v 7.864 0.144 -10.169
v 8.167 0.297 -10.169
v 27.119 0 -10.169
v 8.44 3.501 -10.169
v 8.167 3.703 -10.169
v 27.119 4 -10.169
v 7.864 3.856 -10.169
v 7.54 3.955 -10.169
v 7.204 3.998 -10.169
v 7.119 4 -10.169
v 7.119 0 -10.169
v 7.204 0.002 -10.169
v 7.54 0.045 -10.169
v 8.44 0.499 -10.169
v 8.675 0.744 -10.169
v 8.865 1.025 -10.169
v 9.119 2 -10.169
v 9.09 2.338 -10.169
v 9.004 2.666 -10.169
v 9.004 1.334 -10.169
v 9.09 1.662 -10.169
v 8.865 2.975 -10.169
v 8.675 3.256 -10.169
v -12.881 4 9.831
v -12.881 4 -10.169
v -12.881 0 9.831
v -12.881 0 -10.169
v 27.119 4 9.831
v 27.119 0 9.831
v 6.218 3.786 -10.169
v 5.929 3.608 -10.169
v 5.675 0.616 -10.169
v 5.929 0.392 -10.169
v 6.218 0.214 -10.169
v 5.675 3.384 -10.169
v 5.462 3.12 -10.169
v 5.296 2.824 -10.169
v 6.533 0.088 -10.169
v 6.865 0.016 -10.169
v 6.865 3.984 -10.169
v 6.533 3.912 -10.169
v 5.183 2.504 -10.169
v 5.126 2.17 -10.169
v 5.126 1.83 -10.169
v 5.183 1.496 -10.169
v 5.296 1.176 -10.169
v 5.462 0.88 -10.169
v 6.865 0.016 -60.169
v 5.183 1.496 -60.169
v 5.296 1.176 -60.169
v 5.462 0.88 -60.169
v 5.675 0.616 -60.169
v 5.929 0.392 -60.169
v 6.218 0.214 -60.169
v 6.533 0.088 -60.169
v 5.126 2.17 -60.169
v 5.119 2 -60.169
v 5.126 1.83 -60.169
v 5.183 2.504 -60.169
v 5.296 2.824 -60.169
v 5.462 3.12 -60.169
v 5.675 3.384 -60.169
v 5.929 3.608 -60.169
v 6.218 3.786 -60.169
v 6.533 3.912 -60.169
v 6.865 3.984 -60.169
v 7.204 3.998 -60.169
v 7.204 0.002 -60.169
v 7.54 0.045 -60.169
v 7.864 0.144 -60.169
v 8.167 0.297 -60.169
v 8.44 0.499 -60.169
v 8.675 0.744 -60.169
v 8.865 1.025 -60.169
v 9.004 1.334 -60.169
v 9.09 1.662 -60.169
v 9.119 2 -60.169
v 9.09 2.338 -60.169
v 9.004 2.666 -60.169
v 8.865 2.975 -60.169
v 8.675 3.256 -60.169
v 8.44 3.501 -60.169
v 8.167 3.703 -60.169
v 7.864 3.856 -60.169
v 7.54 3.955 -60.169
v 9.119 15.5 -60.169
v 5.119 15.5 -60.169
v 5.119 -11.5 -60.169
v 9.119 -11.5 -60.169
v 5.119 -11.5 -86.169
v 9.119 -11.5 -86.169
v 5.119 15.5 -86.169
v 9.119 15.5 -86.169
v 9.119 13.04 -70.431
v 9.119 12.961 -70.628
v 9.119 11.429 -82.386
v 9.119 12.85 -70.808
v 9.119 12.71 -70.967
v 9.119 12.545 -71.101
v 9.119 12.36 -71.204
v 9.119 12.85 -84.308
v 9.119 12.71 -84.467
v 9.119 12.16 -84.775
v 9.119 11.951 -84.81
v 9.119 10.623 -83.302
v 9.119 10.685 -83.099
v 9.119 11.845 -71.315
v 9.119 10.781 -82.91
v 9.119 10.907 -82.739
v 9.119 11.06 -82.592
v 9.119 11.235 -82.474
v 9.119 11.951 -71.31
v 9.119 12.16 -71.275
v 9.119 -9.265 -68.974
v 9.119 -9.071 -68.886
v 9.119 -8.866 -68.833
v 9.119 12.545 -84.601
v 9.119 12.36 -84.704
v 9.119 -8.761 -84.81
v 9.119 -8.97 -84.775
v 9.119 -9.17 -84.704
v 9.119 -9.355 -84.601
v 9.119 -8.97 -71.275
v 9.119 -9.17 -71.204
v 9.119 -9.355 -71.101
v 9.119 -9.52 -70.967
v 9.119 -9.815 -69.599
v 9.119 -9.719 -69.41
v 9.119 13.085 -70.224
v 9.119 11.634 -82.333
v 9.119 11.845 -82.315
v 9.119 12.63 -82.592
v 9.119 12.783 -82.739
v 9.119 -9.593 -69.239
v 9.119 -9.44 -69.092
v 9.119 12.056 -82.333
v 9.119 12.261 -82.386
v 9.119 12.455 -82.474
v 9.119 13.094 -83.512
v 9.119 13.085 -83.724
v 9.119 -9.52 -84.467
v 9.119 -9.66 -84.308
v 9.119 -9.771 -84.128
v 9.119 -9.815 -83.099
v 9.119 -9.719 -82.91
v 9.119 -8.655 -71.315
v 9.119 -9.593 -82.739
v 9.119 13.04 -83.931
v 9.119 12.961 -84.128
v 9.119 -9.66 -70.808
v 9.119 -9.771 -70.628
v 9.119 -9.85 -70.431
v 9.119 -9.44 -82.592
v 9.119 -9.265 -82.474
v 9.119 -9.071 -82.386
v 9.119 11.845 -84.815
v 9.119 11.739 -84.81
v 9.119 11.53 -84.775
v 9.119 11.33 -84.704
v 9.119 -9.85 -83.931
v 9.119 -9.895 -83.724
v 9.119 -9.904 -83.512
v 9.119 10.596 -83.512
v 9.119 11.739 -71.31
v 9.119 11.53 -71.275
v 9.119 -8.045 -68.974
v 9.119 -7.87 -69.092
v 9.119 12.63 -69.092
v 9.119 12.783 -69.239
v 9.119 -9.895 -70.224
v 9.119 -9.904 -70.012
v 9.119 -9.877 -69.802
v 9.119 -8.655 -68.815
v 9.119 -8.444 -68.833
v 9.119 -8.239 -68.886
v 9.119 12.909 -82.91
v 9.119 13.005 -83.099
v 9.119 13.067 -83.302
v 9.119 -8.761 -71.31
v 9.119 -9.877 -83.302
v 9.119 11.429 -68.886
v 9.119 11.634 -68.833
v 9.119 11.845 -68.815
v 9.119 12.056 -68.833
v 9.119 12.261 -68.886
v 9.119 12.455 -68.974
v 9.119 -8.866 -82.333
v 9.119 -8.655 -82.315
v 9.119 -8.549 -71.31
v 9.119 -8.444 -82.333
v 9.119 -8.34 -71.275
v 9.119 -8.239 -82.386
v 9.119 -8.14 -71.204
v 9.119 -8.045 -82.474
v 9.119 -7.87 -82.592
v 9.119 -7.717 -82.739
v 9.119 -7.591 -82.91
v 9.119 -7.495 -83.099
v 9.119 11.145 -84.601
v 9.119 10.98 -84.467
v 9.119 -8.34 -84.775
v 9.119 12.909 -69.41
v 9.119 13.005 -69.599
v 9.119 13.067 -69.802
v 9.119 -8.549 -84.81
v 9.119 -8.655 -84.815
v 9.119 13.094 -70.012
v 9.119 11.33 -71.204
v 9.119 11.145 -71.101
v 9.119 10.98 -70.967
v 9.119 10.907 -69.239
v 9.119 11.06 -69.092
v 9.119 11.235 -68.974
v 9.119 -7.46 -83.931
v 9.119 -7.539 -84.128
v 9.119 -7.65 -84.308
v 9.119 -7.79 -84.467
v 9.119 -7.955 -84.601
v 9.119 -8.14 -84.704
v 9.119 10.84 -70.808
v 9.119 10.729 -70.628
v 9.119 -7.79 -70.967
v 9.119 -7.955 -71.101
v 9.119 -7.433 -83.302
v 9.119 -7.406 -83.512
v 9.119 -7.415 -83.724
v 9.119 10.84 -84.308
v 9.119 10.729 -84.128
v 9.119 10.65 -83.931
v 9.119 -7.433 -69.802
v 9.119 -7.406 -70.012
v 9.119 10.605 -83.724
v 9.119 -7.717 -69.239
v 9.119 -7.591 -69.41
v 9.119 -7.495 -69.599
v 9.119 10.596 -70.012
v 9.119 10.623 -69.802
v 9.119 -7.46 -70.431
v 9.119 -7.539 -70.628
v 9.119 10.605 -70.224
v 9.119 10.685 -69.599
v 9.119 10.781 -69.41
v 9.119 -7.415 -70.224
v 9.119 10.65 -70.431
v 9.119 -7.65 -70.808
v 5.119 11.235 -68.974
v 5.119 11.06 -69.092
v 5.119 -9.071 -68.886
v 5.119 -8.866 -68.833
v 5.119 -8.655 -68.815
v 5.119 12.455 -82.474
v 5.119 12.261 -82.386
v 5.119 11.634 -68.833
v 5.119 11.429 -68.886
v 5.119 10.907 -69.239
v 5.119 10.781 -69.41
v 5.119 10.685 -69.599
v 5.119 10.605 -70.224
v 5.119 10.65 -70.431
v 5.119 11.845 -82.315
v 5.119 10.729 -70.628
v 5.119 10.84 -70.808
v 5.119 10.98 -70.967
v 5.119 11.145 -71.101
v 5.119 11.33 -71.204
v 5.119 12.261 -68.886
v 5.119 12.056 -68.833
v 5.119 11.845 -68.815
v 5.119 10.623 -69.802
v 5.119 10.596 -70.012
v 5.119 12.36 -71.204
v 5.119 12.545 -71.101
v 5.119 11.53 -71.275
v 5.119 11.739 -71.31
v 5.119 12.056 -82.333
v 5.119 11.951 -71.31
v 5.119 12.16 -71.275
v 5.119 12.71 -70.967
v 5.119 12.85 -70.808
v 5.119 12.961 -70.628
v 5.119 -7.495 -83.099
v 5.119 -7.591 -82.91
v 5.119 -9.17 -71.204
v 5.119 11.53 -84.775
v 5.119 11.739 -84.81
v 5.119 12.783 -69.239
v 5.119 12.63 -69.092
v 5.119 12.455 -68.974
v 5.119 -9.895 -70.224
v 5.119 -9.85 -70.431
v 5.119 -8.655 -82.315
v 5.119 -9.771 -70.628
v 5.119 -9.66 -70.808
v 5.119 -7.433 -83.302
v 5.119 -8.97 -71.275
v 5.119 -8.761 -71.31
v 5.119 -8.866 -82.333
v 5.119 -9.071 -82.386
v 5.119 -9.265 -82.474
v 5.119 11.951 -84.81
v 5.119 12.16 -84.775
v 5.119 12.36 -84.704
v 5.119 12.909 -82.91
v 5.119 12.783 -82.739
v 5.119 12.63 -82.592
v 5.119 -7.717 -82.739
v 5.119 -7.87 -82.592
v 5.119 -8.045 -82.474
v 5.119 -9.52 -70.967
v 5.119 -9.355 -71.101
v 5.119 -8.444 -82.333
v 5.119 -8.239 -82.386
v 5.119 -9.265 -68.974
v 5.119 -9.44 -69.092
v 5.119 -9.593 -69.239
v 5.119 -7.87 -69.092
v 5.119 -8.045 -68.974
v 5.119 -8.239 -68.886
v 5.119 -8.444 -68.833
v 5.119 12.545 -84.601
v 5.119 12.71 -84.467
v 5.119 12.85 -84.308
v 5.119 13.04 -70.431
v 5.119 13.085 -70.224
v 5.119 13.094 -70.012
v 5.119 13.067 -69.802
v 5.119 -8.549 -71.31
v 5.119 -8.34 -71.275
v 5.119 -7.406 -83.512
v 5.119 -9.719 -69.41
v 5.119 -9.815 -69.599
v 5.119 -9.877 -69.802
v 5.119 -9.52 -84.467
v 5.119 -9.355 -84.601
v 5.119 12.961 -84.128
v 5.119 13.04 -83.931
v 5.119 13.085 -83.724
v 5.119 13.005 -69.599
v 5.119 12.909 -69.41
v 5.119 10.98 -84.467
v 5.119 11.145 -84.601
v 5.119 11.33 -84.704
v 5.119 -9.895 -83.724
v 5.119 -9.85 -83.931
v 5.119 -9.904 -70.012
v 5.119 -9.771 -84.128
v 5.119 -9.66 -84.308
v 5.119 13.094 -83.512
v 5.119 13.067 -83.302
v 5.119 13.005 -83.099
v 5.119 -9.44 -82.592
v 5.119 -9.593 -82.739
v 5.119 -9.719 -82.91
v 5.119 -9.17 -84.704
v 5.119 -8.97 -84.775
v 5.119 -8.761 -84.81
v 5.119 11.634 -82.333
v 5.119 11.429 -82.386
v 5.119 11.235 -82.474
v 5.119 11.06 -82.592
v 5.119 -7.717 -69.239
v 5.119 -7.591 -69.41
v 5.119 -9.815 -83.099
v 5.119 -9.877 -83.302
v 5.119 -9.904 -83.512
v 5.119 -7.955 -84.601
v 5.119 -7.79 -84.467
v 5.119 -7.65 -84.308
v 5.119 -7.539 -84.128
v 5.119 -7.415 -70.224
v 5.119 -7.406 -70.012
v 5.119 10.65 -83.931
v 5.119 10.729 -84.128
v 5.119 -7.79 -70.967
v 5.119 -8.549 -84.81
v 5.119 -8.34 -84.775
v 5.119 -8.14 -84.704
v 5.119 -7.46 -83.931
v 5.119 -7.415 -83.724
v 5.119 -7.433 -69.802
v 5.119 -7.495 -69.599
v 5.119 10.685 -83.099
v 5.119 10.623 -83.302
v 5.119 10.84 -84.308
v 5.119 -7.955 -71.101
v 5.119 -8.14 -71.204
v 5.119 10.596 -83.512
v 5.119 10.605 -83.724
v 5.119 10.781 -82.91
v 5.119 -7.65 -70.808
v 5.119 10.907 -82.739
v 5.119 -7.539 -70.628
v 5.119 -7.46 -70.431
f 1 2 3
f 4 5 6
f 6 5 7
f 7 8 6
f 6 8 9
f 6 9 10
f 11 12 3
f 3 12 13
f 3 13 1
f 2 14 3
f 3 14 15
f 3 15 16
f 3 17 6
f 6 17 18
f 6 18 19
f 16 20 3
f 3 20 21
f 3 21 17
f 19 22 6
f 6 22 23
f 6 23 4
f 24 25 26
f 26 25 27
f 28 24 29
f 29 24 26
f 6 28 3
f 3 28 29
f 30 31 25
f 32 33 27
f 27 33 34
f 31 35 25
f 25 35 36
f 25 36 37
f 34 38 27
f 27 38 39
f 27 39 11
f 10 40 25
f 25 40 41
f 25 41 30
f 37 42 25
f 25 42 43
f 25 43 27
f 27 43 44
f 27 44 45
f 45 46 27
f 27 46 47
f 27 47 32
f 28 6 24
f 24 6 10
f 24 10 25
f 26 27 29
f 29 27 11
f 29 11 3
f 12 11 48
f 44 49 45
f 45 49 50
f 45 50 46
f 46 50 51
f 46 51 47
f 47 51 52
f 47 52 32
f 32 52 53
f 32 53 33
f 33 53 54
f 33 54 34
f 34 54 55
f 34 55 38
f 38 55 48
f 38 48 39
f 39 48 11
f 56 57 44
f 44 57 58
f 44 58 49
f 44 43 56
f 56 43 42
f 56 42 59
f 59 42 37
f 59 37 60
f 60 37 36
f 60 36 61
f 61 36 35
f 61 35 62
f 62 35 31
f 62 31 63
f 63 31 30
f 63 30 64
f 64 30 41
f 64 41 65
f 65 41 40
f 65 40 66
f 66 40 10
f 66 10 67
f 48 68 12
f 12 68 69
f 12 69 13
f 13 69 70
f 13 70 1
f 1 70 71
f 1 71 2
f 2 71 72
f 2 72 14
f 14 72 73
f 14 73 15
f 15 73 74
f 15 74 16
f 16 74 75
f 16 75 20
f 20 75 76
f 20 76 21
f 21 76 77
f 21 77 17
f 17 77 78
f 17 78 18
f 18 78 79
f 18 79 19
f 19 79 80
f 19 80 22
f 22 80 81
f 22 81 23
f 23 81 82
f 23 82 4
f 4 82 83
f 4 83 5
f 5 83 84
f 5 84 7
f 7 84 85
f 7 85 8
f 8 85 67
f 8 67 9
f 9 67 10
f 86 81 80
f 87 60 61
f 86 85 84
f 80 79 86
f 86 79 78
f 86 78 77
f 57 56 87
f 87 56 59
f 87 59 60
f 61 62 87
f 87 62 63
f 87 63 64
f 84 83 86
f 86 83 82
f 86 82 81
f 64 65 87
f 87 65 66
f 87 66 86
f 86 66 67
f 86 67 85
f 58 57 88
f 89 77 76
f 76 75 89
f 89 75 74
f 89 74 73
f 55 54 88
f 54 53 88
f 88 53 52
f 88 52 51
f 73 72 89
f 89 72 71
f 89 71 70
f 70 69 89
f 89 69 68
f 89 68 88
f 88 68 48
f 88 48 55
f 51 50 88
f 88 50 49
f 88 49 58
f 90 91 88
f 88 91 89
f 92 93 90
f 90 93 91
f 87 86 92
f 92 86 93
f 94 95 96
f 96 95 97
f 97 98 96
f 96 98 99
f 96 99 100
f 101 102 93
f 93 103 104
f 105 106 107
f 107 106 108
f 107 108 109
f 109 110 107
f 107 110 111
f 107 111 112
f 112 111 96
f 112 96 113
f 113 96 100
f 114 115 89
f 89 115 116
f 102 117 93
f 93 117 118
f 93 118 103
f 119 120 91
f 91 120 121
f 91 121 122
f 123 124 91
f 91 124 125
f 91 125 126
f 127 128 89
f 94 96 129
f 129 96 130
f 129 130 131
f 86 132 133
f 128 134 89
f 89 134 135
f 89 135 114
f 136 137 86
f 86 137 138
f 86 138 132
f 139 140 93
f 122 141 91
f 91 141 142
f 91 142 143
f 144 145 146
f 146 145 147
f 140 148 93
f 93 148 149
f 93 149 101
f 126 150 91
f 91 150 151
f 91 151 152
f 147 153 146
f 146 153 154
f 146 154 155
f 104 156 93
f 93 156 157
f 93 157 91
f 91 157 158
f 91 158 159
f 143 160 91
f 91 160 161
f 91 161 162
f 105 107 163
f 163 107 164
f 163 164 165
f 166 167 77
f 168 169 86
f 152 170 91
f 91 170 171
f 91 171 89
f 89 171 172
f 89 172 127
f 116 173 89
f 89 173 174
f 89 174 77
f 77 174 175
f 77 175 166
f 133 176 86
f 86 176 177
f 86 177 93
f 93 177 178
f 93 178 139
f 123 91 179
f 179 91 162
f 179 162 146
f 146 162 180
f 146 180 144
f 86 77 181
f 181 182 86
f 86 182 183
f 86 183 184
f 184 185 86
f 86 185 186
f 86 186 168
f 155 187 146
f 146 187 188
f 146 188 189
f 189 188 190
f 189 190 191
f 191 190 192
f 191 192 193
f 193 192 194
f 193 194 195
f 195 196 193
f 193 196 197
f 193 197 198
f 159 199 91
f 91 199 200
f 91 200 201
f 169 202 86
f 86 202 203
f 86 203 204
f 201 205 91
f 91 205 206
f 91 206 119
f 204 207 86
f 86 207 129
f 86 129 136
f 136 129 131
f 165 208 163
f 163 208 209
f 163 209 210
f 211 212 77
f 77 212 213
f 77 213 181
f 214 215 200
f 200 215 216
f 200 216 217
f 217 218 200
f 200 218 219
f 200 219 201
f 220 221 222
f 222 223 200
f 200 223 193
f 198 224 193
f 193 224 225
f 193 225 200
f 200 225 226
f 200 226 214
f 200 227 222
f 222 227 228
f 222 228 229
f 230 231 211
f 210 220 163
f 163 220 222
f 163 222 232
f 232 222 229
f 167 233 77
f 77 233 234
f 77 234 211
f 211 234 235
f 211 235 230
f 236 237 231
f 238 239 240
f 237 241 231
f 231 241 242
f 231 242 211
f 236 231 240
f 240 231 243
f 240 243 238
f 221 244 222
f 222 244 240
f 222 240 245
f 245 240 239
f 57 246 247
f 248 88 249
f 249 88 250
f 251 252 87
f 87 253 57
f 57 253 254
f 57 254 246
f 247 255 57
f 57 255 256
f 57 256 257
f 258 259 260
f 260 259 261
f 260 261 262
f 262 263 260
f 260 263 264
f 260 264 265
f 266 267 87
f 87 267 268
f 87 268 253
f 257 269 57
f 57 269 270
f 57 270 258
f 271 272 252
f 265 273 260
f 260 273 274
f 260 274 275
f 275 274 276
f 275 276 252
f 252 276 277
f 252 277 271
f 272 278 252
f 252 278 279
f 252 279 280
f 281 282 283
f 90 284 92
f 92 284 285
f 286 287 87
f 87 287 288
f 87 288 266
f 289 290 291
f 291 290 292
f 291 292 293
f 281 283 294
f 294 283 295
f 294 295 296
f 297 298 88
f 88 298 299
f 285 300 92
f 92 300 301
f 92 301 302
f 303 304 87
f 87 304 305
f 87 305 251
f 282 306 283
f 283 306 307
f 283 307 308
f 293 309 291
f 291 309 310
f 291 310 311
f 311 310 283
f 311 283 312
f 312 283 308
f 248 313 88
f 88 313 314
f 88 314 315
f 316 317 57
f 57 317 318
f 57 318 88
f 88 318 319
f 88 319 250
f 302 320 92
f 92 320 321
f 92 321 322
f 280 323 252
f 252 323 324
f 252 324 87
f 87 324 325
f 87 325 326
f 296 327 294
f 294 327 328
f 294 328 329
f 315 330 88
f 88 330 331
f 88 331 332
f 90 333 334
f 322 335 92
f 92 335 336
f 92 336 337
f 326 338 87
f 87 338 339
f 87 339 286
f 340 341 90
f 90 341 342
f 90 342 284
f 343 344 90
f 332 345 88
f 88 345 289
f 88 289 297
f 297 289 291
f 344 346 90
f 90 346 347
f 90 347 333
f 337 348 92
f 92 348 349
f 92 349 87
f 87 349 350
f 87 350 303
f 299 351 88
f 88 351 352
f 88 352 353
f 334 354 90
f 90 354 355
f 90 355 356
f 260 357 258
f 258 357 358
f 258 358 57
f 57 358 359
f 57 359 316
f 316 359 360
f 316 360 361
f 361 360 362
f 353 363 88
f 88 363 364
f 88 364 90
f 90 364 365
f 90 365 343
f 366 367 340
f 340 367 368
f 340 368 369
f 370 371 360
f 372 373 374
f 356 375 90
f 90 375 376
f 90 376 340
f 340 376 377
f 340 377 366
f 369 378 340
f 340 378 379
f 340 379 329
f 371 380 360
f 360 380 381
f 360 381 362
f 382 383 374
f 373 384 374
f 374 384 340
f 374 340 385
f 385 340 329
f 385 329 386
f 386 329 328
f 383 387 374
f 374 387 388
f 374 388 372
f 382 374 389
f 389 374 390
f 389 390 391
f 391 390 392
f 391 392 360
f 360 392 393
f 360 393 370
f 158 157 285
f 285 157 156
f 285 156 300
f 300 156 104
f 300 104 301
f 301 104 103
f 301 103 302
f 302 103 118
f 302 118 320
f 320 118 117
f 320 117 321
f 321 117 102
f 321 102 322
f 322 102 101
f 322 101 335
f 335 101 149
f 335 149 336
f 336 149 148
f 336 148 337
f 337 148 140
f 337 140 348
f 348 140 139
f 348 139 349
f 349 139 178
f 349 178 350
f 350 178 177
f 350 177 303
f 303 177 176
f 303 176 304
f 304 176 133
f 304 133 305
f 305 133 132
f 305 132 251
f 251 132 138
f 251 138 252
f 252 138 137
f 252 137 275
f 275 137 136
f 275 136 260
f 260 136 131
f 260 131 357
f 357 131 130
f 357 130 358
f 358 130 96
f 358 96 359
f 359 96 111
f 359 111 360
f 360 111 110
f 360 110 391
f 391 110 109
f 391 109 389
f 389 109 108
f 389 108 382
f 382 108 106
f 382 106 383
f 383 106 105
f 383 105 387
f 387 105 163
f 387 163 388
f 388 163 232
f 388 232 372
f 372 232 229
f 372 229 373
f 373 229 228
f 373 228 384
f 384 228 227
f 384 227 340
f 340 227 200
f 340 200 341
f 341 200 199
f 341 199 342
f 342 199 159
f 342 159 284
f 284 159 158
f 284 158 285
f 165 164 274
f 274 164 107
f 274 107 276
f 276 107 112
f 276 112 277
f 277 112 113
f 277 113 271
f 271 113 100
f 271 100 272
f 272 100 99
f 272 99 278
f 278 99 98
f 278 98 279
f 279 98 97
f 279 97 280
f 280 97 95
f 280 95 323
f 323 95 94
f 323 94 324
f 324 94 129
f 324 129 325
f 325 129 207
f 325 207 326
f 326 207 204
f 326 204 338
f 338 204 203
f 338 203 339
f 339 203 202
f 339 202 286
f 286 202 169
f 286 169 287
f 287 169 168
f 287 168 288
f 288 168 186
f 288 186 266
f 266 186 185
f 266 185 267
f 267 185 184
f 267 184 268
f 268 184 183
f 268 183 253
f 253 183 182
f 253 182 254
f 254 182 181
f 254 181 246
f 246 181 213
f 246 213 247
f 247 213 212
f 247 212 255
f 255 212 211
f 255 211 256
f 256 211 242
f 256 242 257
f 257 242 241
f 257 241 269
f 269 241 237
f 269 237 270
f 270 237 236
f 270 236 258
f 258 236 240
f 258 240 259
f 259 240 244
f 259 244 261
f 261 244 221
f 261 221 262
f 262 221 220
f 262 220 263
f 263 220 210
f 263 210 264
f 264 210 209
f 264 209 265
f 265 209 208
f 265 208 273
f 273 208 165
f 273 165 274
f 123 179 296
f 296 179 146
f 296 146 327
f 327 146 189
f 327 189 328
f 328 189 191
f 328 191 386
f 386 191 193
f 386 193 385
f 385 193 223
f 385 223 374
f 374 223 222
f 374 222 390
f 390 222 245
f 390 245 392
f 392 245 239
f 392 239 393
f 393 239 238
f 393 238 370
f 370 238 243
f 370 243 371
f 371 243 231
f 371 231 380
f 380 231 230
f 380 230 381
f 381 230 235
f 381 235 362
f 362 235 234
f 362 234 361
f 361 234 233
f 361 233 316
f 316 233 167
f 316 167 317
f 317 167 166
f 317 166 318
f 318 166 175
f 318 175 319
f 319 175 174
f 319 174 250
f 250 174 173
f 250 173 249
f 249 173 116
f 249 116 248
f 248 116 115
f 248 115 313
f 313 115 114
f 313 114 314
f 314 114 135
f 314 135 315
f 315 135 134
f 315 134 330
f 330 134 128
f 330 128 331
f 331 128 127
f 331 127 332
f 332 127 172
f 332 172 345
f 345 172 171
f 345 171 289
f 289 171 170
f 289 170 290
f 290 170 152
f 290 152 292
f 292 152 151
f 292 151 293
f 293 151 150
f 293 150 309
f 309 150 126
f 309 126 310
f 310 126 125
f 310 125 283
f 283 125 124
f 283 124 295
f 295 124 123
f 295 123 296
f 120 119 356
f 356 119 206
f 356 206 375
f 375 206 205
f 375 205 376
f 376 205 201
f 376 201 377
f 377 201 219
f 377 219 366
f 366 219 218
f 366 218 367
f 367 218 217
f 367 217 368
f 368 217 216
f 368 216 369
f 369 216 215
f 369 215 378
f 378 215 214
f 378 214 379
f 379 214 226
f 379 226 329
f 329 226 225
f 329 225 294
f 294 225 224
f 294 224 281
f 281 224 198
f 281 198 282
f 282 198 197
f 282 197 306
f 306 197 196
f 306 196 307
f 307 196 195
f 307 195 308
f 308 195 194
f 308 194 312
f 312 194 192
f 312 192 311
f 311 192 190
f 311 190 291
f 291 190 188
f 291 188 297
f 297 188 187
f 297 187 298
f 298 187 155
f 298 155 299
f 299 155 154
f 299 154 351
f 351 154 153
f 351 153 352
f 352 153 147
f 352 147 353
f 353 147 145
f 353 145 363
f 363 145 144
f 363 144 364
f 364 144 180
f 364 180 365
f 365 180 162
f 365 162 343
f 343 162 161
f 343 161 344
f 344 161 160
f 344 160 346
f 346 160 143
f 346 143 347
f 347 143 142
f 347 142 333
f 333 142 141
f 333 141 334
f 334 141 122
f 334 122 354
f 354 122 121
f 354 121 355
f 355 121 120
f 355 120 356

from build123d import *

# Parameters (mm, degrees)
SKETCH1_W           = 40
SKETCH1_H           = 20
BOSS_EXTRUDE1_DEPTH = 4
SKETCH3_R           = 2
BOSS_EXTRUDE3_DEPTH = 50
SKETCH5_W           = 26
SKETCH5_H           = 13.5
BOSS_EXTRUDE4_DEPTH = 2
BOSS_EXTRUDE5_DEPTH = 2
SKETCH7_R           = 1.25
CUT_EXTRUDE1_DEPTH  = 23


with BuildPart() as part:
    # Sketch1 → Boss-Extrude1 (new body)
    with BuildSketch(Plane(origin=(0, 0, 0), x_dir=(1, 0, 0), z_dir=(0, 1, 0))):
        with Locations((7.118644068, 0.169491525)):
            Rectangle(SKETCH1_W, SKETCH1_H)
    extrude(amount=BOSS_EXTRUDE1_DEPTH)

    # Sketch3 → Boss-Extrude3 (add)
    with BuildSketch(Plane(origin=(0, 0, -10.169491525), x_dir=(-1, 0, 0), z_dir=(0, 0, -1))):
        with Locations((-7.118644068, 2)):
            Circle(SKETCH3_R)
    extrude(amount=BOSS_EXTRUDE3_DEPTH)

    # Sketch5 → Boss-Extrude4 (add)
    with BuildSketch(Plane(origin=(7.118644068, 0, 0), x_dir=(0, 0, -1), z_dir=(1, 0, 0))):
        with Locations((73.169491525, 8.75)):
            Rectangle(SKETCH5_W, SKETCH5_H)
        with Locations((73.169491525, -4.75)):
            Rectangle(SKETCH5_W, SKETCH5_H)
    extrude(amount=BOSS_EXTRUDE4_DEPTH)

    # Sketch6 → Boss-Extrude5 (add)
    with BuildSketch(Plane.ZY.offset(-7.118644068)):
        Polygon((-60.169491525, -11.5), (-60.169491525, 0), (-60.169491525, 4), (-60.169491525, 15.5), (-86.169491525, 15.5), (-86.169491525, -11.5), align=None)
    extrude(amount=BOSS_EXTRUDE5_DEPTH)

    # Sketch7 → Cut-Extrude1 (cut, through all)
    with BuildSketch(Plane.ZY.offset(-5.118644068)):
        with Locations((-83.564955349, -8.654979701)):
            Circle(SKETCH7_R)
        with Locations((-70.064955349, 11.845020299)):
            Circle(SKETCH7_R)
        with Locations((-70.064955349, -8.654979701)):
            Circle(SKETCH7_R)
        with Locations((-83.564955349, 11.845020299)):
            Circle(SKETCH7_R)
    extrude(amount=-CUT_EXTRUDE1_DEPTH, mode=Mode.SUBTRACT)


solid = part.part
